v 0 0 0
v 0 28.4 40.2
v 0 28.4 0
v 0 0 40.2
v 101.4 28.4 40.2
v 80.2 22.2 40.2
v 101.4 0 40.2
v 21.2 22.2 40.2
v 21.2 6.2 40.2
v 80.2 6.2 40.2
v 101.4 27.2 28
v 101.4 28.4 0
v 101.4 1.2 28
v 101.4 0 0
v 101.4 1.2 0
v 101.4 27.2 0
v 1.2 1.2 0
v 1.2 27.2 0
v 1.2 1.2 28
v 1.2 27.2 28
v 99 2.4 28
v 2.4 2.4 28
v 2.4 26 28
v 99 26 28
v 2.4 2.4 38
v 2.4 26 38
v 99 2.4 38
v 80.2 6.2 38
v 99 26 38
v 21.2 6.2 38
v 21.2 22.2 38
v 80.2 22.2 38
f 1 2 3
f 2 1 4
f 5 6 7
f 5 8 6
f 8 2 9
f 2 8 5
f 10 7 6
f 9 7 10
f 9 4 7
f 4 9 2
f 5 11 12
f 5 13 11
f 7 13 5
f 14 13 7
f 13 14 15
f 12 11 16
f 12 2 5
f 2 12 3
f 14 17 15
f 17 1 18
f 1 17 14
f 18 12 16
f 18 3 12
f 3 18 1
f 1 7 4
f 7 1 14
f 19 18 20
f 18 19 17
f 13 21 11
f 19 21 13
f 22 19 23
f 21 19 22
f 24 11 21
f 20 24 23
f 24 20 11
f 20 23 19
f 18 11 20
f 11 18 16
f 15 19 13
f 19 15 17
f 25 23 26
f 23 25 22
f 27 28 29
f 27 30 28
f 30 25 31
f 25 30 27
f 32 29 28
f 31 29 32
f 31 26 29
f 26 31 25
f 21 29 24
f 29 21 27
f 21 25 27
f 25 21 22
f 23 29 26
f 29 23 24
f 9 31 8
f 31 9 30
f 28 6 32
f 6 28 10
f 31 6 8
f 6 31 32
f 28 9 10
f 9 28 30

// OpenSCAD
night_light();

//translate([0,50,0]) night_light();
//translate([0,100,0]) night_light();

module night_light()
{
    //battery bank approx 96 x 24 x 22
    length = 99;    //battery bank - tight fit + 1mm for tab
    width = 26;     //battery bank - tight fit
    bat_height = 28;
    spacer_height = 1;
    board_height = 10;
    wall_th = 1.2;
    spacer_th = 1.2;
    window_border_x = 20;
    window_border_y = 5;
    bat_cutout_height = 28;
    
    
    ///////////////////////////////////
    //Derived
    height = bat_height + spacer_height + board_height;
    
    union()
    {
        difference() {
            cube([length+(wall_th*2),
                    width+(wall_th*2),
                    height+wall_th]);
            
            //battery compartment cut out
            translate([wall_th, wall_th, -10])
                cube([length,width,bat_height+10]);
            
            //board compartment cut out
            translate([wall_th+spacer_th, 
                    wall_th+spacer_th, 
                    bat_height-1])
                cube([length-(spacer_th*2),
                    width-(spacer_th*2),
                    board_height+1]);
            
            //spacer cut out
            /*translate([wall_th + spacer_th, 
                    wall_th + spacer_th, 
                    bat_height-5])
                cube([length - (spacer_th*2),
                    width - (spacer_th*2),
                    spacer_height+10]);*/
            
            //cut out window
            translate([window_border_x+wall_th,
                    window_border_y+wall_th,
                    10])
                cube([length-(window_border_x*2),
                    width-(window_border_y*2),
                    height+10]);
            
            //battery connectors
            translate([(wall_th+length-5), wall_th, -10])
                cube([length,
                    width,
                    bat_cutout_height+10]);
        }
        /*
        //bottom tabs for battery
        for (x_pos = [20,40,60,80])
        {
            translate([x_pos, wall_th, 0]) cube([2,2,1]);
            translate([x_pos, (wall_th+width-2), 0]) cube([2,2,1]);
        }
        
        //end tabs for battery
        translate([length+(wall_th*2)-1, wall_th, 0])
            cube([1,1,3]);
        translate([length+(wall_th*2)-1, (wall_th+width-1), 0])
            cube([1,1,3]);
        */
    }
}
